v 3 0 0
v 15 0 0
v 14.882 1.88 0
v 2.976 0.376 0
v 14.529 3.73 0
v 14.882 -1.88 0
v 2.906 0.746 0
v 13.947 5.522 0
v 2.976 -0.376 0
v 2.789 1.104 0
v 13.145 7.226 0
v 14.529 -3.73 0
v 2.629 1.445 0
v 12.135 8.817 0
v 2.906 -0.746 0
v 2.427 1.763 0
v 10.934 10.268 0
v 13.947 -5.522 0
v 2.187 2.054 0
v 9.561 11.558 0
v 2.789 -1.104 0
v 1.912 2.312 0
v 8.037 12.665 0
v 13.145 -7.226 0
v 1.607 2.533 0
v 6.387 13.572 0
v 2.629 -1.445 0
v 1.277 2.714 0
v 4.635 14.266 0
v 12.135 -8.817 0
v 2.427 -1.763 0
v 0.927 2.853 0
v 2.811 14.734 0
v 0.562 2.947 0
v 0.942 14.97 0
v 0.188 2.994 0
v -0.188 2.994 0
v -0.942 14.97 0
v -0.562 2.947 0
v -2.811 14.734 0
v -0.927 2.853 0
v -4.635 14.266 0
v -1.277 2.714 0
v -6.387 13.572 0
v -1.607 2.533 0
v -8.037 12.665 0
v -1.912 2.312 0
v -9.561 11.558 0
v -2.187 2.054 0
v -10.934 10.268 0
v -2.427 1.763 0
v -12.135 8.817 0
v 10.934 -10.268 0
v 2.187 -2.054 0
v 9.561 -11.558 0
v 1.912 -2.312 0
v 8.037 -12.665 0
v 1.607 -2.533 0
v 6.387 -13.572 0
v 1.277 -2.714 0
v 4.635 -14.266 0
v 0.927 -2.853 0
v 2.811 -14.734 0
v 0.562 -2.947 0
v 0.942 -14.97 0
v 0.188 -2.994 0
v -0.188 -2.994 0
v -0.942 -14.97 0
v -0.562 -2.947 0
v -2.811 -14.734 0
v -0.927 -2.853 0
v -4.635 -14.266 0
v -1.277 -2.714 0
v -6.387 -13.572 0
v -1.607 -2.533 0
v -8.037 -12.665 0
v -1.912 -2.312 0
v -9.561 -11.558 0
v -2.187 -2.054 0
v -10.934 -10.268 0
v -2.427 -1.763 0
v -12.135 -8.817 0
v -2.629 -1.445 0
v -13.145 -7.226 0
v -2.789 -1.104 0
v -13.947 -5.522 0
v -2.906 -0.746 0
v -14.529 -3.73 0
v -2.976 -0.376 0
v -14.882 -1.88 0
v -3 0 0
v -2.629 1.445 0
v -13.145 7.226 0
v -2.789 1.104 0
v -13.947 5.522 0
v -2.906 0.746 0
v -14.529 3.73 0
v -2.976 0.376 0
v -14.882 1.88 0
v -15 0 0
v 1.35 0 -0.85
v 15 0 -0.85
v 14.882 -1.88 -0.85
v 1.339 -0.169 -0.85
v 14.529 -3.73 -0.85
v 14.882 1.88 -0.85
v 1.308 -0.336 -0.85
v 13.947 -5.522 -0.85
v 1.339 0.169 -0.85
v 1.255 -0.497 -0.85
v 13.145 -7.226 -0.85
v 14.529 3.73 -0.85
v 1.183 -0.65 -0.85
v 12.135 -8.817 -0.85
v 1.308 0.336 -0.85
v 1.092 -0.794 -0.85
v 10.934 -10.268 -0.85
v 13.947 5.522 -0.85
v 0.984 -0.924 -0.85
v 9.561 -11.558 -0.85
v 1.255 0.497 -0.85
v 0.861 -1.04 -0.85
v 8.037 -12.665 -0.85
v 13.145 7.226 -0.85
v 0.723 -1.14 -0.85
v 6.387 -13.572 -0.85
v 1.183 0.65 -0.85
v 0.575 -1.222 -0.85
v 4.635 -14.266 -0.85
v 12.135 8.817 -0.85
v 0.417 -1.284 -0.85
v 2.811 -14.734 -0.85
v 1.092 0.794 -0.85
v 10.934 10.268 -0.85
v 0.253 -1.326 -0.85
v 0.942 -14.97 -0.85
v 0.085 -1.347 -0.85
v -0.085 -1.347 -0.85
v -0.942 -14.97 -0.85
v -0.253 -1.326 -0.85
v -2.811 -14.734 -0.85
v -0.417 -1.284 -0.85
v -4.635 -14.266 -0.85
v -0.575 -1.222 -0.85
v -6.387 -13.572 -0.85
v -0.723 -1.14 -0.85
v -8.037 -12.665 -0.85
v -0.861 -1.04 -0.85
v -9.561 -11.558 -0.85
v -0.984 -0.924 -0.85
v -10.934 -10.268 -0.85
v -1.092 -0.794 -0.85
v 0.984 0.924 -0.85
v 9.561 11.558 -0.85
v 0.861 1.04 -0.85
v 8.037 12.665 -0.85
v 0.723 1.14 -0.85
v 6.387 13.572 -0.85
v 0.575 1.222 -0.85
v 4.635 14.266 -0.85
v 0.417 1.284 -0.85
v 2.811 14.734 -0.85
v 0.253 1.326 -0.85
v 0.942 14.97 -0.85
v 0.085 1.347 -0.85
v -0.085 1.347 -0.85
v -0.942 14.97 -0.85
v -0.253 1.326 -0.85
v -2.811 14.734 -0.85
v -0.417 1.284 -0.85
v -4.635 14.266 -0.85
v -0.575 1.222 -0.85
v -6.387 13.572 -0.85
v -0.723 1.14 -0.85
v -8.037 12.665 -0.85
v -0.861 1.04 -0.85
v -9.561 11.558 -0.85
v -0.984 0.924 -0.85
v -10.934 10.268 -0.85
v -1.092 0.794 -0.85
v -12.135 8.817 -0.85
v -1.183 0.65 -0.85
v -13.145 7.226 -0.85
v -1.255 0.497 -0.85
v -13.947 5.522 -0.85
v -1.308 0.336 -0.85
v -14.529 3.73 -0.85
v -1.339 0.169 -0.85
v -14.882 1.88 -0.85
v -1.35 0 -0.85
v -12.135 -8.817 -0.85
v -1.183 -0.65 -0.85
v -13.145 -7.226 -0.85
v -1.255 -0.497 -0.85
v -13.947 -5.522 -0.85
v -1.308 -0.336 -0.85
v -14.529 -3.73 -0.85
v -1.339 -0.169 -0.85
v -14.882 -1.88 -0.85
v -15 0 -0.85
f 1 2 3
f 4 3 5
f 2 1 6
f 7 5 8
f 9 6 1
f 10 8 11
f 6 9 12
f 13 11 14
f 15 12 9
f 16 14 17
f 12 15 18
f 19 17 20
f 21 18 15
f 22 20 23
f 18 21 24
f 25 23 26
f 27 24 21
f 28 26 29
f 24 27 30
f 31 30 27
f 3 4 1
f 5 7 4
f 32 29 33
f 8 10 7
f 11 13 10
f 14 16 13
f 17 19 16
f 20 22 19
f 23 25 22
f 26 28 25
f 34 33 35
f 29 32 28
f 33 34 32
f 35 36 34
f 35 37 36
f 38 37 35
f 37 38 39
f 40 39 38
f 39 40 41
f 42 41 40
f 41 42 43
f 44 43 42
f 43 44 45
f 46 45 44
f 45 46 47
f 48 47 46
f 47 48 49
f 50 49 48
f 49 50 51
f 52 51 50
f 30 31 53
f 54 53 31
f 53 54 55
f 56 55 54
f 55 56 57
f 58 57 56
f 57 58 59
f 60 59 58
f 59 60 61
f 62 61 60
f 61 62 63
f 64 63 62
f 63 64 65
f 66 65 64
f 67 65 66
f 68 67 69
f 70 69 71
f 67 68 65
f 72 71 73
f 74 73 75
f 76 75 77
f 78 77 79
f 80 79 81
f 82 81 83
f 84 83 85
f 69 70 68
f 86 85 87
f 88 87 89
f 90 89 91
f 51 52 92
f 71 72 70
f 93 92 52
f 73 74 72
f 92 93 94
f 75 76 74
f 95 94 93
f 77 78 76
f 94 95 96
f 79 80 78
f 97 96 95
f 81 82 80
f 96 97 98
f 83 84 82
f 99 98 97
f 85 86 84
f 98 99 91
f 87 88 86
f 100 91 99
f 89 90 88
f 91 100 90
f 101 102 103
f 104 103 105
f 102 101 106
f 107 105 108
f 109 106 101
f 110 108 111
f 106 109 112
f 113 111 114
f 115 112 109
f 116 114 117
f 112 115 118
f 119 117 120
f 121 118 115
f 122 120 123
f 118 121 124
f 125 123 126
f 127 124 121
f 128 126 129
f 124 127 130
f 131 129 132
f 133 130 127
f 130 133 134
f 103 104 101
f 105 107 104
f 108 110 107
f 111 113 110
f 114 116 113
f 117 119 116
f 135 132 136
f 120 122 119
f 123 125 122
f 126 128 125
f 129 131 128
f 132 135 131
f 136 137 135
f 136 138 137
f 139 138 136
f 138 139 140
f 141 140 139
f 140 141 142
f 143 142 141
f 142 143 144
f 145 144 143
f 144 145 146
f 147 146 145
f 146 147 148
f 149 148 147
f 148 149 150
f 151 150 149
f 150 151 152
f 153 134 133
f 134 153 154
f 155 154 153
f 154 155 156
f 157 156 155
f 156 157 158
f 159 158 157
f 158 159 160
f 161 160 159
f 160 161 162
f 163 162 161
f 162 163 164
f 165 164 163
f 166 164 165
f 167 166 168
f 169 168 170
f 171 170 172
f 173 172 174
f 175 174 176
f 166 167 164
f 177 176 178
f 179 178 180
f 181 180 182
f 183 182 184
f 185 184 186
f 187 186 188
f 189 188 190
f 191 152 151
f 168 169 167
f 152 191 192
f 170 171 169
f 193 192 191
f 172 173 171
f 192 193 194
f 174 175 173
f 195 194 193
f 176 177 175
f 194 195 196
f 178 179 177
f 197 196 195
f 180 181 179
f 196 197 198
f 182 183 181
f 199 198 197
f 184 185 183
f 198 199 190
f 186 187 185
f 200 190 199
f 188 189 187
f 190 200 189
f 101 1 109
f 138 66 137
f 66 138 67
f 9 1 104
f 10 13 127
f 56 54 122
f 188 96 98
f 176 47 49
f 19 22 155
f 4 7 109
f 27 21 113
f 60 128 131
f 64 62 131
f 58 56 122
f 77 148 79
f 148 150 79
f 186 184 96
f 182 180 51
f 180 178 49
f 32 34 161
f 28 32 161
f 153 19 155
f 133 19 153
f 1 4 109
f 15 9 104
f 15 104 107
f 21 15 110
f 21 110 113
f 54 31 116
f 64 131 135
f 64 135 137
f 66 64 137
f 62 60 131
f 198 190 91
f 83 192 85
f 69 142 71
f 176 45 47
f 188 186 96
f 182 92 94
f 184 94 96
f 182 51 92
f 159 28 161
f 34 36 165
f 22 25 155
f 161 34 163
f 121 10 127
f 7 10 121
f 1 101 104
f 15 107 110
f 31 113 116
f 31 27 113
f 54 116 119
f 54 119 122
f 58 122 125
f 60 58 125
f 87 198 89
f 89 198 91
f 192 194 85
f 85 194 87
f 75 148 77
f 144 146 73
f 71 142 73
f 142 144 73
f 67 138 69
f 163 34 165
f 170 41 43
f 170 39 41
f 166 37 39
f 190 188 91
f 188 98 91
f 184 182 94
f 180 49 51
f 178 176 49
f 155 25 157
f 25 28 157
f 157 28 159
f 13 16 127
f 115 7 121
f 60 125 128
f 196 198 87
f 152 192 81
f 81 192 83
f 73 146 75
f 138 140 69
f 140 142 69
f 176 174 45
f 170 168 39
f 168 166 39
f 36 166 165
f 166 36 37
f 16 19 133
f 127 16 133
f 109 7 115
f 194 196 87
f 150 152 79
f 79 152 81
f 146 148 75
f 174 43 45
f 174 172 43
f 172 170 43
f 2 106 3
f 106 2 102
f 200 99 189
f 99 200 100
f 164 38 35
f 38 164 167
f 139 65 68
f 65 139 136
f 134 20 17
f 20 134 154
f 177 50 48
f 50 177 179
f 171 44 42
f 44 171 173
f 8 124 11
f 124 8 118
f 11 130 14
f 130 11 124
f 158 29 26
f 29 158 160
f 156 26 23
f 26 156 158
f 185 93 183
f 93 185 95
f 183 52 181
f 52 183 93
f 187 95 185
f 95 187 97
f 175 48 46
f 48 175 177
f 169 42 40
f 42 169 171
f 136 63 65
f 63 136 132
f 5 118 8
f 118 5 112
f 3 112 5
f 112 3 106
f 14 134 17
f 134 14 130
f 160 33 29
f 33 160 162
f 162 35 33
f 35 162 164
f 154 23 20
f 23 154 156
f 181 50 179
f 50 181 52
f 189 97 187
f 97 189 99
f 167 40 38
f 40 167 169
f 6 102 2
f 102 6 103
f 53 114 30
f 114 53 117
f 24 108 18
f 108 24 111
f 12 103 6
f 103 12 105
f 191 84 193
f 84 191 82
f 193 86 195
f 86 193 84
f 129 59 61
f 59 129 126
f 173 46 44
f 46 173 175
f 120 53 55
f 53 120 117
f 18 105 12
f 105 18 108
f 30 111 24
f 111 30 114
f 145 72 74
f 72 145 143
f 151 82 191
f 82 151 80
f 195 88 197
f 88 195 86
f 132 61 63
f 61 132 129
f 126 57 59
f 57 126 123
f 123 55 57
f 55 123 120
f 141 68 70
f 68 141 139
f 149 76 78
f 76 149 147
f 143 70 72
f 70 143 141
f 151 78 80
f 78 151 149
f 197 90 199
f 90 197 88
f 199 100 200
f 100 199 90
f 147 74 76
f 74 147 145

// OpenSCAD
$fn = 50;


difference() {
	union() {
		translate(v = [0, 0, -0.8500000000]) {
			cylinder(h = 0.8500000000, r = 15.0000000000);
		}
	}
	union() {
		translate(v = [0, 0, 0]) {
			rotate(a = [0, 0, 0]) {
				difference() {
					union() {
						#translate(v = [0, 0, -0.8500000000]) {
							cylinder(h = 0.8500000000, r = 1.0000000000);
						}
						#translate(v = [0, 0, -0.8500000000]) {
							cylinder(h = 0.8500000000, r1 = 1.3500000000, r2 = 3.0000000000);
						}
						#translate(v = [0, 0, -0.8500000000]) {
							cylinder(h = 0.8500000000, r = 1.3500000000);
						}
						#translate(v = [0, 0, -0.8500000000]) {
							cylinder(h = 0.8500000000, r = 1.0000000000);
						}
					}
					union();
				}
			}
		}
	}
}
